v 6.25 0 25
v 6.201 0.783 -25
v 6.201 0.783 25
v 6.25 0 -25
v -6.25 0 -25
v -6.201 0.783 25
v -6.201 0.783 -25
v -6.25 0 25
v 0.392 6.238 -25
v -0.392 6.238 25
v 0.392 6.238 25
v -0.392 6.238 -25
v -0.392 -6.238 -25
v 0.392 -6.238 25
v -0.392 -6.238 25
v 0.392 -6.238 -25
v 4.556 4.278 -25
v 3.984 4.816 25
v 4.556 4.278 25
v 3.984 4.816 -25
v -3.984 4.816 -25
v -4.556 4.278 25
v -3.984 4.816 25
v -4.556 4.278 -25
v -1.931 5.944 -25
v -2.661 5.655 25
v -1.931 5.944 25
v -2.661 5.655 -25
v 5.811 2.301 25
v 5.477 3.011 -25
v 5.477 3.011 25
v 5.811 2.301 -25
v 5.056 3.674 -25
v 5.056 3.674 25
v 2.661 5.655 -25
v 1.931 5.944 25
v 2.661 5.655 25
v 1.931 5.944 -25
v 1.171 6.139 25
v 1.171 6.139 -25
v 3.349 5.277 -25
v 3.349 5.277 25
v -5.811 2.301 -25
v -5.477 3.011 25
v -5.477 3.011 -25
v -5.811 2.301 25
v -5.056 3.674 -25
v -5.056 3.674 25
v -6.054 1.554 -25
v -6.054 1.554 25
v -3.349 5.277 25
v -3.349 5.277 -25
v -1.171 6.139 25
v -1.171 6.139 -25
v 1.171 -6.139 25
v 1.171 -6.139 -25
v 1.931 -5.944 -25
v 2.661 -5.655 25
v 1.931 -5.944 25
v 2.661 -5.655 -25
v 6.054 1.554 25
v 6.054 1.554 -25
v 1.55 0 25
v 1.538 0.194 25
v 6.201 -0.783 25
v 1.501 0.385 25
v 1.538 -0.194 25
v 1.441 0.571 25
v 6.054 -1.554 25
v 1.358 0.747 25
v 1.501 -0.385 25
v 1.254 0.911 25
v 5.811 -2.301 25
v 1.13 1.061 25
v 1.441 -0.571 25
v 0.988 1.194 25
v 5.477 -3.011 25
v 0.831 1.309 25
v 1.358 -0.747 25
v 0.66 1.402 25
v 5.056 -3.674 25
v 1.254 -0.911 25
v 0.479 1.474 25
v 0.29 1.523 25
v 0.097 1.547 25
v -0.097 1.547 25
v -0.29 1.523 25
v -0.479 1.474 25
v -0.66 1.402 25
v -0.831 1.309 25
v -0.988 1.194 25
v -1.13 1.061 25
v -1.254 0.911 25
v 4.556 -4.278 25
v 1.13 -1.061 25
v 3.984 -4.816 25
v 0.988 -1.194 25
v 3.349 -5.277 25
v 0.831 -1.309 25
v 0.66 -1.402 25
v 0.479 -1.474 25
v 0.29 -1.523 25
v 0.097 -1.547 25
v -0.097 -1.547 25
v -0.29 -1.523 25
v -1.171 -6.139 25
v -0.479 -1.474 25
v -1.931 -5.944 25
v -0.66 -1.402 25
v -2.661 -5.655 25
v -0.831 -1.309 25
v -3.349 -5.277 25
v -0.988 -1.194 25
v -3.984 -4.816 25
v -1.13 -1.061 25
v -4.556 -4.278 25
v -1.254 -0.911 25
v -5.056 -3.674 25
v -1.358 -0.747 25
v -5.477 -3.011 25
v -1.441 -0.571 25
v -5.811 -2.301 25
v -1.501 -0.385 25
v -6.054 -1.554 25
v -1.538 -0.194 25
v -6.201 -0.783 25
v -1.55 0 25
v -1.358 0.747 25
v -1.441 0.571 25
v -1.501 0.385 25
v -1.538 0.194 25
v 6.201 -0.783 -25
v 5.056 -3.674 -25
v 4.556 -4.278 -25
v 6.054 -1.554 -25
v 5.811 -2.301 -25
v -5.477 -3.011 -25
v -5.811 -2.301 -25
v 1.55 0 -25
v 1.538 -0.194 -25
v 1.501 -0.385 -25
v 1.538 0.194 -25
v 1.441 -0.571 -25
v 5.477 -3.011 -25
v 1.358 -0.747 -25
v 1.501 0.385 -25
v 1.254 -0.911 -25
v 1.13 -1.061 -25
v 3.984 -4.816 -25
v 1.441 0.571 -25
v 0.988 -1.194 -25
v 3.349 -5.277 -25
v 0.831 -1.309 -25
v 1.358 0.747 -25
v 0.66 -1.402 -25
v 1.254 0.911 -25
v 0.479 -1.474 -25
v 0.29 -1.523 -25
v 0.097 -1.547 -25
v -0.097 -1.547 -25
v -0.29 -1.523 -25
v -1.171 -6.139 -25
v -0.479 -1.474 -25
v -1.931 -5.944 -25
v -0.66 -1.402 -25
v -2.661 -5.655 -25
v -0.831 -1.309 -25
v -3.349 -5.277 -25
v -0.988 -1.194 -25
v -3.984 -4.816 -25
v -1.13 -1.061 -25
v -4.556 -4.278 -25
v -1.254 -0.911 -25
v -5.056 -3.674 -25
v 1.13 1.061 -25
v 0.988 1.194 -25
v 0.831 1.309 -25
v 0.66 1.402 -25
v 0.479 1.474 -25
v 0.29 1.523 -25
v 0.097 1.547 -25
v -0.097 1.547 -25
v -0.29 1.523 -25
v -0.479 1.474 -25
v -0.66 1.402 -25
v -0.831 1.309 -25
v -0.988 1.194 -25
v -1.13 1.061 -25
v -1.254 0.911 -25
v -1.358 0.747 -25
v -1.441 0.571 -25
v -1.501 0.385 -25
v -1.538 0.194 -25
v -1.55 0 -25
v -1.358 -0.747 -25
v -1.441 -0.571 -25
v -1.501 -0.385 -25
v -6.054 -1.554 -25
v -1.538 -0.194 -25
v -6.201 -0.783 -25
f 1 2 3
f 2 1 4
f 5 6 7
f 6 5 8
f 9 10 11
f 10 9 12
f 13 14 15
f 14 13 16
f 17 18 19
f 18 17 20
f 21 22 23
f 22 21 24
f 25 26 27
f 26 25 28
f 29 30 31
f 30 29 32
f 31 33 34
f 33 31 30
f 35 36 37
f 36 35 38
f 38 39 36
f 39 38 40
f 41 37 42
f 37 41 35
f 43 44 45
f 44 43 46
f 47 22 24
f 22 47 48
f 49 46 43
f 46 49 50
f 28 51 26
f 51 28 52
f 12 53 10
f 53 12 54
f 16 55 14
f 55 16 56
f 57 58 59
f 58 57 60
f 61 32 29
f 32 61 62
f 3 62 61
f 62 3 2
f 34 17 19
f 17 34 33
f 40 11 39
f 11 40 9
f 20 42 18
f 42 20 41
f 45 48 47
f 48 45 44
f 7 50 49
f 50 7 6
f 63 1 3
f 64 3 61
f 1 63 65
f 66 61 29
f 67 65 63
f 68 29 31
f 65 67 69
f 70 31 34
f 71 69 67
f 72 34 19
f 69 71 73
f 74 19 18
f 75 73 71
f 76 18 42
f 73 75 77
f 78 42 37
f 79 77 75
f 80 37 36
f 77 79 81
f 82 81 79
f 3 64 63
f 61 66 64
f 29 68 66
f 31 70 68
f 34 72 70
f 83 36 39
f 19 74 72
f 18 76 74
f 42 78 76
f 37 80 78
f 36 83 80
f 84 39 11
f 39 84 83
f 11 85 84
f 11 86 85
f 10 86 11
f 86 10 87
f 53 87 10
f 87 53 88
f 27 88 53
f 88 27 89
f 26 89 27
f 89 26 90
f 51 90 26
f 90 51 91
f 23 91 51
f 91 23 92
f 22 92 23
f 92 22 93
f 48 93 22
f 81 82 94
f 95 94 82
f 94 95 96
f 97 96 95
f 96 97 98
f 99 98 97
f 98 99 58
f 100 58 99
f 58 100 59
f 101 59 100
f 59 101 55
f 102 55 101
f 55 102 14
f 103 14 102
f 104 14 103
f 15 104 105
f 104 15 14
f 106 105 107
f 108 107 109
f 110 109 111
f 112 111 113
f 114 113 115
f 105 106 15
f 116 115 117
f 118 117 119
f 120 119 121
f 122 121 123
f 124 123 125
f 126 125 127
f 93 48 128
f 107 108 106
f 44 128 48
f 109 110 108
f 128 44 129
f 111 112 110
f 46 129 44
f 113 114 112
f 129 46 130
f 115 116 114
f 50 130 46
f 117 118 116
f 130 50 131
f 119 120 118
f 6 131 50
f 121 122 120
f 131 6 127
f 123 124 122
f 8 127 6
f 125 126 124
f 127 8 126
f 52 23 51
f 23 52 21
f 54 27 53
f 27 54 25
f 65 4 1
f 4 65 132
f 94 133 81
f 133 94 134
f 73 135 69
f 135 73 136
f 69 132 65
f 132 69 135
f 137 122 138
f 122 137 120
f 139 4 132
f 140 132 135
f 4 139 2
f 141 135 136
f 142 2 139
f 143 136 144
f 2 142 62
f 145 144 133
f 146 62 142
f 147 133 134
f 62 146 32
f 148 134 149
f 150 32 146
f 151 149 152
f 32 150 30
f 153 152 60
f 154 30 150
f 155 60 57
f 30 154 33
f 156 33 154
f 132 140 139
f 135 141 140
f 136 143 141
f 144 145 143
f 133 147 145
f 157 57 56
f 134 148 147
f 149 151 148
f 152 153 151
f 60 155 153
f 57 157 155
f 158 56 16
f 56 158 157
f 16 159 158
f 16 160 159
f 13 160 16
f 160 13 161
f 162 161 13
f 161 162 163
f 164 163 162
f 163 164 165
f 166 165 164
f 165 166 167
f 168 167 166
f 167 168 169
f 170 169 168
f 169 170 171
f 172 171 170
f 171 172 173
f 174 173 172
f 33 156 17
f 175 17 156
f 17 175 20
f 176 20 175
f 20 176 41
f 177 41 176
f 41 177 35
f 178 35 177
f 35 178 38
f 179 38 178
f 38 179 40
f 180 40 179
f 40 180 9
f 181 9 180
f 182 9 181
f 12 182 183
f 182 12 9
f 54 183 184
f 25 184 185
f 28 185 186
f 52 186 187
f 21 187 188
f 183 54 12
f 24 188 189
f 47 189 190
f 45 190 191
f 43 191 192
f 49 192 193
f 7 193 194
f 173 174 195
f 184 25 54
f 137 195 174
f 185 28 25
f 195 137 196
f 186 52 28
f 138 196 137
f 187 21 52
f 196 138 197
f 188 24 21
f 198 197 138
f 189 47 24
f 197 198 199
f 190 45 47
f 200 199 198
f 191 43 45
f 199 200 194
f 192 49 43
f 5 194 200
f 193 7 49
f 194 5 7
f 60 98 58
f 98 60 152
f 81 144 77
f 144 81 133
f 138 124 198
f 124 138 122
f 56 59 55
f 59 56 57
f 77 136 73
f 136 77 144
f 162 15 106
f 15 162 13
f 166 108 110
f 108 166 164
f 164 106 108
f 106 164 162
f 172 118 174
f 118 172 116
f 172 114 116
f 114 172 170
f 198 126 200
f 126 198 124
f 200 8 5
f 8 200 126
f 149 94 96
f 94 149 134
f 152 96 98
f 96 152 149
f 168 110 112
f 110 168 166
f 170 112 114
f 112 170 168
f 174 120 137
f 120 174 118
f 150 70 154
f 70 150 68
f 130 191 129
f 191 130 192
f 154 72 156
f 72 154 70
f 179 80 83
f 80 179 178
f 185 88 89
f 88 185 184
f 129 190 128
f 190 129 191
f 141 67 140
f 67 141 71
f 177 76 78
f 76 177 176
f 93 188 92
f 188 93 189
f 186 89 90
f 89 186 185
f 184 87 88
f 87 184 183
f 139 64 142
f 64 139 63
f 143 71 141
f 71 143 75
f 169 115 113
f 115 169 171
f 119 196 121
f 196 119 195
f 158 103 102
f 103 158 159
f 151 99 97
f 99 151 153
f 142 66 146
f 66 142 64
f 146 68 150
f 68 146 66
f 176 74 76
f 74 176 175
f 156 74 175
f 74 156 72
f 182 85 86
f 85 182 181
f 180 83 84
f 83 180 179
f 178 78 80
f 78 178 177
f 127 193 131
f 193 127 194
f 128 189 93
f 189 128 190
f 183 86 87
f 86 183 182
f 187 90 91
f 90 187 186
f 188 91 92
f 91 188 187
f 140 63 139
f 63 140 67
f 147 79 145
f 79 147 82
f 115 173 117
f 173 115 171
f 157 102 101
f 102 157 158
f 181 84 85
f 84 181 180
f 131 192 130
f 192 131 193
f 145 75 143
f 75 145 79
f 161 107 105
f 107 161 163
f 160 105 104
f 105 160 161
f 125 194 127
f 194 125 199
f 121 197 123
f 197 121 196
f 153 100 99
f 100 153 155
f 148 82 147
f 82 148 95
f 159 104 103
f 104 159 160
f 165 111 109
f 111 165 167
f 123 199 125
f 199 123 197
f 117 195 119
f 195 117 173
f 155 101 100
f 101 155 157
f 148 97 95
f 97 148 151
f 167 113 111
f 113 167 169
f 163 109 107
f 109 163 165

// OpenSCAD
$fn = 50;


difference() {
	union() {
		translate(v = [0, 0, -25.0000000000]) {
			cylinder(h = 50, r = 6.2500000000);
		}
	}
	union() {
		translate(v = [0, 0, -100.0000000000]) {
			cylinder(h = 200, r = 1.5500000000);
		}
	}
}
